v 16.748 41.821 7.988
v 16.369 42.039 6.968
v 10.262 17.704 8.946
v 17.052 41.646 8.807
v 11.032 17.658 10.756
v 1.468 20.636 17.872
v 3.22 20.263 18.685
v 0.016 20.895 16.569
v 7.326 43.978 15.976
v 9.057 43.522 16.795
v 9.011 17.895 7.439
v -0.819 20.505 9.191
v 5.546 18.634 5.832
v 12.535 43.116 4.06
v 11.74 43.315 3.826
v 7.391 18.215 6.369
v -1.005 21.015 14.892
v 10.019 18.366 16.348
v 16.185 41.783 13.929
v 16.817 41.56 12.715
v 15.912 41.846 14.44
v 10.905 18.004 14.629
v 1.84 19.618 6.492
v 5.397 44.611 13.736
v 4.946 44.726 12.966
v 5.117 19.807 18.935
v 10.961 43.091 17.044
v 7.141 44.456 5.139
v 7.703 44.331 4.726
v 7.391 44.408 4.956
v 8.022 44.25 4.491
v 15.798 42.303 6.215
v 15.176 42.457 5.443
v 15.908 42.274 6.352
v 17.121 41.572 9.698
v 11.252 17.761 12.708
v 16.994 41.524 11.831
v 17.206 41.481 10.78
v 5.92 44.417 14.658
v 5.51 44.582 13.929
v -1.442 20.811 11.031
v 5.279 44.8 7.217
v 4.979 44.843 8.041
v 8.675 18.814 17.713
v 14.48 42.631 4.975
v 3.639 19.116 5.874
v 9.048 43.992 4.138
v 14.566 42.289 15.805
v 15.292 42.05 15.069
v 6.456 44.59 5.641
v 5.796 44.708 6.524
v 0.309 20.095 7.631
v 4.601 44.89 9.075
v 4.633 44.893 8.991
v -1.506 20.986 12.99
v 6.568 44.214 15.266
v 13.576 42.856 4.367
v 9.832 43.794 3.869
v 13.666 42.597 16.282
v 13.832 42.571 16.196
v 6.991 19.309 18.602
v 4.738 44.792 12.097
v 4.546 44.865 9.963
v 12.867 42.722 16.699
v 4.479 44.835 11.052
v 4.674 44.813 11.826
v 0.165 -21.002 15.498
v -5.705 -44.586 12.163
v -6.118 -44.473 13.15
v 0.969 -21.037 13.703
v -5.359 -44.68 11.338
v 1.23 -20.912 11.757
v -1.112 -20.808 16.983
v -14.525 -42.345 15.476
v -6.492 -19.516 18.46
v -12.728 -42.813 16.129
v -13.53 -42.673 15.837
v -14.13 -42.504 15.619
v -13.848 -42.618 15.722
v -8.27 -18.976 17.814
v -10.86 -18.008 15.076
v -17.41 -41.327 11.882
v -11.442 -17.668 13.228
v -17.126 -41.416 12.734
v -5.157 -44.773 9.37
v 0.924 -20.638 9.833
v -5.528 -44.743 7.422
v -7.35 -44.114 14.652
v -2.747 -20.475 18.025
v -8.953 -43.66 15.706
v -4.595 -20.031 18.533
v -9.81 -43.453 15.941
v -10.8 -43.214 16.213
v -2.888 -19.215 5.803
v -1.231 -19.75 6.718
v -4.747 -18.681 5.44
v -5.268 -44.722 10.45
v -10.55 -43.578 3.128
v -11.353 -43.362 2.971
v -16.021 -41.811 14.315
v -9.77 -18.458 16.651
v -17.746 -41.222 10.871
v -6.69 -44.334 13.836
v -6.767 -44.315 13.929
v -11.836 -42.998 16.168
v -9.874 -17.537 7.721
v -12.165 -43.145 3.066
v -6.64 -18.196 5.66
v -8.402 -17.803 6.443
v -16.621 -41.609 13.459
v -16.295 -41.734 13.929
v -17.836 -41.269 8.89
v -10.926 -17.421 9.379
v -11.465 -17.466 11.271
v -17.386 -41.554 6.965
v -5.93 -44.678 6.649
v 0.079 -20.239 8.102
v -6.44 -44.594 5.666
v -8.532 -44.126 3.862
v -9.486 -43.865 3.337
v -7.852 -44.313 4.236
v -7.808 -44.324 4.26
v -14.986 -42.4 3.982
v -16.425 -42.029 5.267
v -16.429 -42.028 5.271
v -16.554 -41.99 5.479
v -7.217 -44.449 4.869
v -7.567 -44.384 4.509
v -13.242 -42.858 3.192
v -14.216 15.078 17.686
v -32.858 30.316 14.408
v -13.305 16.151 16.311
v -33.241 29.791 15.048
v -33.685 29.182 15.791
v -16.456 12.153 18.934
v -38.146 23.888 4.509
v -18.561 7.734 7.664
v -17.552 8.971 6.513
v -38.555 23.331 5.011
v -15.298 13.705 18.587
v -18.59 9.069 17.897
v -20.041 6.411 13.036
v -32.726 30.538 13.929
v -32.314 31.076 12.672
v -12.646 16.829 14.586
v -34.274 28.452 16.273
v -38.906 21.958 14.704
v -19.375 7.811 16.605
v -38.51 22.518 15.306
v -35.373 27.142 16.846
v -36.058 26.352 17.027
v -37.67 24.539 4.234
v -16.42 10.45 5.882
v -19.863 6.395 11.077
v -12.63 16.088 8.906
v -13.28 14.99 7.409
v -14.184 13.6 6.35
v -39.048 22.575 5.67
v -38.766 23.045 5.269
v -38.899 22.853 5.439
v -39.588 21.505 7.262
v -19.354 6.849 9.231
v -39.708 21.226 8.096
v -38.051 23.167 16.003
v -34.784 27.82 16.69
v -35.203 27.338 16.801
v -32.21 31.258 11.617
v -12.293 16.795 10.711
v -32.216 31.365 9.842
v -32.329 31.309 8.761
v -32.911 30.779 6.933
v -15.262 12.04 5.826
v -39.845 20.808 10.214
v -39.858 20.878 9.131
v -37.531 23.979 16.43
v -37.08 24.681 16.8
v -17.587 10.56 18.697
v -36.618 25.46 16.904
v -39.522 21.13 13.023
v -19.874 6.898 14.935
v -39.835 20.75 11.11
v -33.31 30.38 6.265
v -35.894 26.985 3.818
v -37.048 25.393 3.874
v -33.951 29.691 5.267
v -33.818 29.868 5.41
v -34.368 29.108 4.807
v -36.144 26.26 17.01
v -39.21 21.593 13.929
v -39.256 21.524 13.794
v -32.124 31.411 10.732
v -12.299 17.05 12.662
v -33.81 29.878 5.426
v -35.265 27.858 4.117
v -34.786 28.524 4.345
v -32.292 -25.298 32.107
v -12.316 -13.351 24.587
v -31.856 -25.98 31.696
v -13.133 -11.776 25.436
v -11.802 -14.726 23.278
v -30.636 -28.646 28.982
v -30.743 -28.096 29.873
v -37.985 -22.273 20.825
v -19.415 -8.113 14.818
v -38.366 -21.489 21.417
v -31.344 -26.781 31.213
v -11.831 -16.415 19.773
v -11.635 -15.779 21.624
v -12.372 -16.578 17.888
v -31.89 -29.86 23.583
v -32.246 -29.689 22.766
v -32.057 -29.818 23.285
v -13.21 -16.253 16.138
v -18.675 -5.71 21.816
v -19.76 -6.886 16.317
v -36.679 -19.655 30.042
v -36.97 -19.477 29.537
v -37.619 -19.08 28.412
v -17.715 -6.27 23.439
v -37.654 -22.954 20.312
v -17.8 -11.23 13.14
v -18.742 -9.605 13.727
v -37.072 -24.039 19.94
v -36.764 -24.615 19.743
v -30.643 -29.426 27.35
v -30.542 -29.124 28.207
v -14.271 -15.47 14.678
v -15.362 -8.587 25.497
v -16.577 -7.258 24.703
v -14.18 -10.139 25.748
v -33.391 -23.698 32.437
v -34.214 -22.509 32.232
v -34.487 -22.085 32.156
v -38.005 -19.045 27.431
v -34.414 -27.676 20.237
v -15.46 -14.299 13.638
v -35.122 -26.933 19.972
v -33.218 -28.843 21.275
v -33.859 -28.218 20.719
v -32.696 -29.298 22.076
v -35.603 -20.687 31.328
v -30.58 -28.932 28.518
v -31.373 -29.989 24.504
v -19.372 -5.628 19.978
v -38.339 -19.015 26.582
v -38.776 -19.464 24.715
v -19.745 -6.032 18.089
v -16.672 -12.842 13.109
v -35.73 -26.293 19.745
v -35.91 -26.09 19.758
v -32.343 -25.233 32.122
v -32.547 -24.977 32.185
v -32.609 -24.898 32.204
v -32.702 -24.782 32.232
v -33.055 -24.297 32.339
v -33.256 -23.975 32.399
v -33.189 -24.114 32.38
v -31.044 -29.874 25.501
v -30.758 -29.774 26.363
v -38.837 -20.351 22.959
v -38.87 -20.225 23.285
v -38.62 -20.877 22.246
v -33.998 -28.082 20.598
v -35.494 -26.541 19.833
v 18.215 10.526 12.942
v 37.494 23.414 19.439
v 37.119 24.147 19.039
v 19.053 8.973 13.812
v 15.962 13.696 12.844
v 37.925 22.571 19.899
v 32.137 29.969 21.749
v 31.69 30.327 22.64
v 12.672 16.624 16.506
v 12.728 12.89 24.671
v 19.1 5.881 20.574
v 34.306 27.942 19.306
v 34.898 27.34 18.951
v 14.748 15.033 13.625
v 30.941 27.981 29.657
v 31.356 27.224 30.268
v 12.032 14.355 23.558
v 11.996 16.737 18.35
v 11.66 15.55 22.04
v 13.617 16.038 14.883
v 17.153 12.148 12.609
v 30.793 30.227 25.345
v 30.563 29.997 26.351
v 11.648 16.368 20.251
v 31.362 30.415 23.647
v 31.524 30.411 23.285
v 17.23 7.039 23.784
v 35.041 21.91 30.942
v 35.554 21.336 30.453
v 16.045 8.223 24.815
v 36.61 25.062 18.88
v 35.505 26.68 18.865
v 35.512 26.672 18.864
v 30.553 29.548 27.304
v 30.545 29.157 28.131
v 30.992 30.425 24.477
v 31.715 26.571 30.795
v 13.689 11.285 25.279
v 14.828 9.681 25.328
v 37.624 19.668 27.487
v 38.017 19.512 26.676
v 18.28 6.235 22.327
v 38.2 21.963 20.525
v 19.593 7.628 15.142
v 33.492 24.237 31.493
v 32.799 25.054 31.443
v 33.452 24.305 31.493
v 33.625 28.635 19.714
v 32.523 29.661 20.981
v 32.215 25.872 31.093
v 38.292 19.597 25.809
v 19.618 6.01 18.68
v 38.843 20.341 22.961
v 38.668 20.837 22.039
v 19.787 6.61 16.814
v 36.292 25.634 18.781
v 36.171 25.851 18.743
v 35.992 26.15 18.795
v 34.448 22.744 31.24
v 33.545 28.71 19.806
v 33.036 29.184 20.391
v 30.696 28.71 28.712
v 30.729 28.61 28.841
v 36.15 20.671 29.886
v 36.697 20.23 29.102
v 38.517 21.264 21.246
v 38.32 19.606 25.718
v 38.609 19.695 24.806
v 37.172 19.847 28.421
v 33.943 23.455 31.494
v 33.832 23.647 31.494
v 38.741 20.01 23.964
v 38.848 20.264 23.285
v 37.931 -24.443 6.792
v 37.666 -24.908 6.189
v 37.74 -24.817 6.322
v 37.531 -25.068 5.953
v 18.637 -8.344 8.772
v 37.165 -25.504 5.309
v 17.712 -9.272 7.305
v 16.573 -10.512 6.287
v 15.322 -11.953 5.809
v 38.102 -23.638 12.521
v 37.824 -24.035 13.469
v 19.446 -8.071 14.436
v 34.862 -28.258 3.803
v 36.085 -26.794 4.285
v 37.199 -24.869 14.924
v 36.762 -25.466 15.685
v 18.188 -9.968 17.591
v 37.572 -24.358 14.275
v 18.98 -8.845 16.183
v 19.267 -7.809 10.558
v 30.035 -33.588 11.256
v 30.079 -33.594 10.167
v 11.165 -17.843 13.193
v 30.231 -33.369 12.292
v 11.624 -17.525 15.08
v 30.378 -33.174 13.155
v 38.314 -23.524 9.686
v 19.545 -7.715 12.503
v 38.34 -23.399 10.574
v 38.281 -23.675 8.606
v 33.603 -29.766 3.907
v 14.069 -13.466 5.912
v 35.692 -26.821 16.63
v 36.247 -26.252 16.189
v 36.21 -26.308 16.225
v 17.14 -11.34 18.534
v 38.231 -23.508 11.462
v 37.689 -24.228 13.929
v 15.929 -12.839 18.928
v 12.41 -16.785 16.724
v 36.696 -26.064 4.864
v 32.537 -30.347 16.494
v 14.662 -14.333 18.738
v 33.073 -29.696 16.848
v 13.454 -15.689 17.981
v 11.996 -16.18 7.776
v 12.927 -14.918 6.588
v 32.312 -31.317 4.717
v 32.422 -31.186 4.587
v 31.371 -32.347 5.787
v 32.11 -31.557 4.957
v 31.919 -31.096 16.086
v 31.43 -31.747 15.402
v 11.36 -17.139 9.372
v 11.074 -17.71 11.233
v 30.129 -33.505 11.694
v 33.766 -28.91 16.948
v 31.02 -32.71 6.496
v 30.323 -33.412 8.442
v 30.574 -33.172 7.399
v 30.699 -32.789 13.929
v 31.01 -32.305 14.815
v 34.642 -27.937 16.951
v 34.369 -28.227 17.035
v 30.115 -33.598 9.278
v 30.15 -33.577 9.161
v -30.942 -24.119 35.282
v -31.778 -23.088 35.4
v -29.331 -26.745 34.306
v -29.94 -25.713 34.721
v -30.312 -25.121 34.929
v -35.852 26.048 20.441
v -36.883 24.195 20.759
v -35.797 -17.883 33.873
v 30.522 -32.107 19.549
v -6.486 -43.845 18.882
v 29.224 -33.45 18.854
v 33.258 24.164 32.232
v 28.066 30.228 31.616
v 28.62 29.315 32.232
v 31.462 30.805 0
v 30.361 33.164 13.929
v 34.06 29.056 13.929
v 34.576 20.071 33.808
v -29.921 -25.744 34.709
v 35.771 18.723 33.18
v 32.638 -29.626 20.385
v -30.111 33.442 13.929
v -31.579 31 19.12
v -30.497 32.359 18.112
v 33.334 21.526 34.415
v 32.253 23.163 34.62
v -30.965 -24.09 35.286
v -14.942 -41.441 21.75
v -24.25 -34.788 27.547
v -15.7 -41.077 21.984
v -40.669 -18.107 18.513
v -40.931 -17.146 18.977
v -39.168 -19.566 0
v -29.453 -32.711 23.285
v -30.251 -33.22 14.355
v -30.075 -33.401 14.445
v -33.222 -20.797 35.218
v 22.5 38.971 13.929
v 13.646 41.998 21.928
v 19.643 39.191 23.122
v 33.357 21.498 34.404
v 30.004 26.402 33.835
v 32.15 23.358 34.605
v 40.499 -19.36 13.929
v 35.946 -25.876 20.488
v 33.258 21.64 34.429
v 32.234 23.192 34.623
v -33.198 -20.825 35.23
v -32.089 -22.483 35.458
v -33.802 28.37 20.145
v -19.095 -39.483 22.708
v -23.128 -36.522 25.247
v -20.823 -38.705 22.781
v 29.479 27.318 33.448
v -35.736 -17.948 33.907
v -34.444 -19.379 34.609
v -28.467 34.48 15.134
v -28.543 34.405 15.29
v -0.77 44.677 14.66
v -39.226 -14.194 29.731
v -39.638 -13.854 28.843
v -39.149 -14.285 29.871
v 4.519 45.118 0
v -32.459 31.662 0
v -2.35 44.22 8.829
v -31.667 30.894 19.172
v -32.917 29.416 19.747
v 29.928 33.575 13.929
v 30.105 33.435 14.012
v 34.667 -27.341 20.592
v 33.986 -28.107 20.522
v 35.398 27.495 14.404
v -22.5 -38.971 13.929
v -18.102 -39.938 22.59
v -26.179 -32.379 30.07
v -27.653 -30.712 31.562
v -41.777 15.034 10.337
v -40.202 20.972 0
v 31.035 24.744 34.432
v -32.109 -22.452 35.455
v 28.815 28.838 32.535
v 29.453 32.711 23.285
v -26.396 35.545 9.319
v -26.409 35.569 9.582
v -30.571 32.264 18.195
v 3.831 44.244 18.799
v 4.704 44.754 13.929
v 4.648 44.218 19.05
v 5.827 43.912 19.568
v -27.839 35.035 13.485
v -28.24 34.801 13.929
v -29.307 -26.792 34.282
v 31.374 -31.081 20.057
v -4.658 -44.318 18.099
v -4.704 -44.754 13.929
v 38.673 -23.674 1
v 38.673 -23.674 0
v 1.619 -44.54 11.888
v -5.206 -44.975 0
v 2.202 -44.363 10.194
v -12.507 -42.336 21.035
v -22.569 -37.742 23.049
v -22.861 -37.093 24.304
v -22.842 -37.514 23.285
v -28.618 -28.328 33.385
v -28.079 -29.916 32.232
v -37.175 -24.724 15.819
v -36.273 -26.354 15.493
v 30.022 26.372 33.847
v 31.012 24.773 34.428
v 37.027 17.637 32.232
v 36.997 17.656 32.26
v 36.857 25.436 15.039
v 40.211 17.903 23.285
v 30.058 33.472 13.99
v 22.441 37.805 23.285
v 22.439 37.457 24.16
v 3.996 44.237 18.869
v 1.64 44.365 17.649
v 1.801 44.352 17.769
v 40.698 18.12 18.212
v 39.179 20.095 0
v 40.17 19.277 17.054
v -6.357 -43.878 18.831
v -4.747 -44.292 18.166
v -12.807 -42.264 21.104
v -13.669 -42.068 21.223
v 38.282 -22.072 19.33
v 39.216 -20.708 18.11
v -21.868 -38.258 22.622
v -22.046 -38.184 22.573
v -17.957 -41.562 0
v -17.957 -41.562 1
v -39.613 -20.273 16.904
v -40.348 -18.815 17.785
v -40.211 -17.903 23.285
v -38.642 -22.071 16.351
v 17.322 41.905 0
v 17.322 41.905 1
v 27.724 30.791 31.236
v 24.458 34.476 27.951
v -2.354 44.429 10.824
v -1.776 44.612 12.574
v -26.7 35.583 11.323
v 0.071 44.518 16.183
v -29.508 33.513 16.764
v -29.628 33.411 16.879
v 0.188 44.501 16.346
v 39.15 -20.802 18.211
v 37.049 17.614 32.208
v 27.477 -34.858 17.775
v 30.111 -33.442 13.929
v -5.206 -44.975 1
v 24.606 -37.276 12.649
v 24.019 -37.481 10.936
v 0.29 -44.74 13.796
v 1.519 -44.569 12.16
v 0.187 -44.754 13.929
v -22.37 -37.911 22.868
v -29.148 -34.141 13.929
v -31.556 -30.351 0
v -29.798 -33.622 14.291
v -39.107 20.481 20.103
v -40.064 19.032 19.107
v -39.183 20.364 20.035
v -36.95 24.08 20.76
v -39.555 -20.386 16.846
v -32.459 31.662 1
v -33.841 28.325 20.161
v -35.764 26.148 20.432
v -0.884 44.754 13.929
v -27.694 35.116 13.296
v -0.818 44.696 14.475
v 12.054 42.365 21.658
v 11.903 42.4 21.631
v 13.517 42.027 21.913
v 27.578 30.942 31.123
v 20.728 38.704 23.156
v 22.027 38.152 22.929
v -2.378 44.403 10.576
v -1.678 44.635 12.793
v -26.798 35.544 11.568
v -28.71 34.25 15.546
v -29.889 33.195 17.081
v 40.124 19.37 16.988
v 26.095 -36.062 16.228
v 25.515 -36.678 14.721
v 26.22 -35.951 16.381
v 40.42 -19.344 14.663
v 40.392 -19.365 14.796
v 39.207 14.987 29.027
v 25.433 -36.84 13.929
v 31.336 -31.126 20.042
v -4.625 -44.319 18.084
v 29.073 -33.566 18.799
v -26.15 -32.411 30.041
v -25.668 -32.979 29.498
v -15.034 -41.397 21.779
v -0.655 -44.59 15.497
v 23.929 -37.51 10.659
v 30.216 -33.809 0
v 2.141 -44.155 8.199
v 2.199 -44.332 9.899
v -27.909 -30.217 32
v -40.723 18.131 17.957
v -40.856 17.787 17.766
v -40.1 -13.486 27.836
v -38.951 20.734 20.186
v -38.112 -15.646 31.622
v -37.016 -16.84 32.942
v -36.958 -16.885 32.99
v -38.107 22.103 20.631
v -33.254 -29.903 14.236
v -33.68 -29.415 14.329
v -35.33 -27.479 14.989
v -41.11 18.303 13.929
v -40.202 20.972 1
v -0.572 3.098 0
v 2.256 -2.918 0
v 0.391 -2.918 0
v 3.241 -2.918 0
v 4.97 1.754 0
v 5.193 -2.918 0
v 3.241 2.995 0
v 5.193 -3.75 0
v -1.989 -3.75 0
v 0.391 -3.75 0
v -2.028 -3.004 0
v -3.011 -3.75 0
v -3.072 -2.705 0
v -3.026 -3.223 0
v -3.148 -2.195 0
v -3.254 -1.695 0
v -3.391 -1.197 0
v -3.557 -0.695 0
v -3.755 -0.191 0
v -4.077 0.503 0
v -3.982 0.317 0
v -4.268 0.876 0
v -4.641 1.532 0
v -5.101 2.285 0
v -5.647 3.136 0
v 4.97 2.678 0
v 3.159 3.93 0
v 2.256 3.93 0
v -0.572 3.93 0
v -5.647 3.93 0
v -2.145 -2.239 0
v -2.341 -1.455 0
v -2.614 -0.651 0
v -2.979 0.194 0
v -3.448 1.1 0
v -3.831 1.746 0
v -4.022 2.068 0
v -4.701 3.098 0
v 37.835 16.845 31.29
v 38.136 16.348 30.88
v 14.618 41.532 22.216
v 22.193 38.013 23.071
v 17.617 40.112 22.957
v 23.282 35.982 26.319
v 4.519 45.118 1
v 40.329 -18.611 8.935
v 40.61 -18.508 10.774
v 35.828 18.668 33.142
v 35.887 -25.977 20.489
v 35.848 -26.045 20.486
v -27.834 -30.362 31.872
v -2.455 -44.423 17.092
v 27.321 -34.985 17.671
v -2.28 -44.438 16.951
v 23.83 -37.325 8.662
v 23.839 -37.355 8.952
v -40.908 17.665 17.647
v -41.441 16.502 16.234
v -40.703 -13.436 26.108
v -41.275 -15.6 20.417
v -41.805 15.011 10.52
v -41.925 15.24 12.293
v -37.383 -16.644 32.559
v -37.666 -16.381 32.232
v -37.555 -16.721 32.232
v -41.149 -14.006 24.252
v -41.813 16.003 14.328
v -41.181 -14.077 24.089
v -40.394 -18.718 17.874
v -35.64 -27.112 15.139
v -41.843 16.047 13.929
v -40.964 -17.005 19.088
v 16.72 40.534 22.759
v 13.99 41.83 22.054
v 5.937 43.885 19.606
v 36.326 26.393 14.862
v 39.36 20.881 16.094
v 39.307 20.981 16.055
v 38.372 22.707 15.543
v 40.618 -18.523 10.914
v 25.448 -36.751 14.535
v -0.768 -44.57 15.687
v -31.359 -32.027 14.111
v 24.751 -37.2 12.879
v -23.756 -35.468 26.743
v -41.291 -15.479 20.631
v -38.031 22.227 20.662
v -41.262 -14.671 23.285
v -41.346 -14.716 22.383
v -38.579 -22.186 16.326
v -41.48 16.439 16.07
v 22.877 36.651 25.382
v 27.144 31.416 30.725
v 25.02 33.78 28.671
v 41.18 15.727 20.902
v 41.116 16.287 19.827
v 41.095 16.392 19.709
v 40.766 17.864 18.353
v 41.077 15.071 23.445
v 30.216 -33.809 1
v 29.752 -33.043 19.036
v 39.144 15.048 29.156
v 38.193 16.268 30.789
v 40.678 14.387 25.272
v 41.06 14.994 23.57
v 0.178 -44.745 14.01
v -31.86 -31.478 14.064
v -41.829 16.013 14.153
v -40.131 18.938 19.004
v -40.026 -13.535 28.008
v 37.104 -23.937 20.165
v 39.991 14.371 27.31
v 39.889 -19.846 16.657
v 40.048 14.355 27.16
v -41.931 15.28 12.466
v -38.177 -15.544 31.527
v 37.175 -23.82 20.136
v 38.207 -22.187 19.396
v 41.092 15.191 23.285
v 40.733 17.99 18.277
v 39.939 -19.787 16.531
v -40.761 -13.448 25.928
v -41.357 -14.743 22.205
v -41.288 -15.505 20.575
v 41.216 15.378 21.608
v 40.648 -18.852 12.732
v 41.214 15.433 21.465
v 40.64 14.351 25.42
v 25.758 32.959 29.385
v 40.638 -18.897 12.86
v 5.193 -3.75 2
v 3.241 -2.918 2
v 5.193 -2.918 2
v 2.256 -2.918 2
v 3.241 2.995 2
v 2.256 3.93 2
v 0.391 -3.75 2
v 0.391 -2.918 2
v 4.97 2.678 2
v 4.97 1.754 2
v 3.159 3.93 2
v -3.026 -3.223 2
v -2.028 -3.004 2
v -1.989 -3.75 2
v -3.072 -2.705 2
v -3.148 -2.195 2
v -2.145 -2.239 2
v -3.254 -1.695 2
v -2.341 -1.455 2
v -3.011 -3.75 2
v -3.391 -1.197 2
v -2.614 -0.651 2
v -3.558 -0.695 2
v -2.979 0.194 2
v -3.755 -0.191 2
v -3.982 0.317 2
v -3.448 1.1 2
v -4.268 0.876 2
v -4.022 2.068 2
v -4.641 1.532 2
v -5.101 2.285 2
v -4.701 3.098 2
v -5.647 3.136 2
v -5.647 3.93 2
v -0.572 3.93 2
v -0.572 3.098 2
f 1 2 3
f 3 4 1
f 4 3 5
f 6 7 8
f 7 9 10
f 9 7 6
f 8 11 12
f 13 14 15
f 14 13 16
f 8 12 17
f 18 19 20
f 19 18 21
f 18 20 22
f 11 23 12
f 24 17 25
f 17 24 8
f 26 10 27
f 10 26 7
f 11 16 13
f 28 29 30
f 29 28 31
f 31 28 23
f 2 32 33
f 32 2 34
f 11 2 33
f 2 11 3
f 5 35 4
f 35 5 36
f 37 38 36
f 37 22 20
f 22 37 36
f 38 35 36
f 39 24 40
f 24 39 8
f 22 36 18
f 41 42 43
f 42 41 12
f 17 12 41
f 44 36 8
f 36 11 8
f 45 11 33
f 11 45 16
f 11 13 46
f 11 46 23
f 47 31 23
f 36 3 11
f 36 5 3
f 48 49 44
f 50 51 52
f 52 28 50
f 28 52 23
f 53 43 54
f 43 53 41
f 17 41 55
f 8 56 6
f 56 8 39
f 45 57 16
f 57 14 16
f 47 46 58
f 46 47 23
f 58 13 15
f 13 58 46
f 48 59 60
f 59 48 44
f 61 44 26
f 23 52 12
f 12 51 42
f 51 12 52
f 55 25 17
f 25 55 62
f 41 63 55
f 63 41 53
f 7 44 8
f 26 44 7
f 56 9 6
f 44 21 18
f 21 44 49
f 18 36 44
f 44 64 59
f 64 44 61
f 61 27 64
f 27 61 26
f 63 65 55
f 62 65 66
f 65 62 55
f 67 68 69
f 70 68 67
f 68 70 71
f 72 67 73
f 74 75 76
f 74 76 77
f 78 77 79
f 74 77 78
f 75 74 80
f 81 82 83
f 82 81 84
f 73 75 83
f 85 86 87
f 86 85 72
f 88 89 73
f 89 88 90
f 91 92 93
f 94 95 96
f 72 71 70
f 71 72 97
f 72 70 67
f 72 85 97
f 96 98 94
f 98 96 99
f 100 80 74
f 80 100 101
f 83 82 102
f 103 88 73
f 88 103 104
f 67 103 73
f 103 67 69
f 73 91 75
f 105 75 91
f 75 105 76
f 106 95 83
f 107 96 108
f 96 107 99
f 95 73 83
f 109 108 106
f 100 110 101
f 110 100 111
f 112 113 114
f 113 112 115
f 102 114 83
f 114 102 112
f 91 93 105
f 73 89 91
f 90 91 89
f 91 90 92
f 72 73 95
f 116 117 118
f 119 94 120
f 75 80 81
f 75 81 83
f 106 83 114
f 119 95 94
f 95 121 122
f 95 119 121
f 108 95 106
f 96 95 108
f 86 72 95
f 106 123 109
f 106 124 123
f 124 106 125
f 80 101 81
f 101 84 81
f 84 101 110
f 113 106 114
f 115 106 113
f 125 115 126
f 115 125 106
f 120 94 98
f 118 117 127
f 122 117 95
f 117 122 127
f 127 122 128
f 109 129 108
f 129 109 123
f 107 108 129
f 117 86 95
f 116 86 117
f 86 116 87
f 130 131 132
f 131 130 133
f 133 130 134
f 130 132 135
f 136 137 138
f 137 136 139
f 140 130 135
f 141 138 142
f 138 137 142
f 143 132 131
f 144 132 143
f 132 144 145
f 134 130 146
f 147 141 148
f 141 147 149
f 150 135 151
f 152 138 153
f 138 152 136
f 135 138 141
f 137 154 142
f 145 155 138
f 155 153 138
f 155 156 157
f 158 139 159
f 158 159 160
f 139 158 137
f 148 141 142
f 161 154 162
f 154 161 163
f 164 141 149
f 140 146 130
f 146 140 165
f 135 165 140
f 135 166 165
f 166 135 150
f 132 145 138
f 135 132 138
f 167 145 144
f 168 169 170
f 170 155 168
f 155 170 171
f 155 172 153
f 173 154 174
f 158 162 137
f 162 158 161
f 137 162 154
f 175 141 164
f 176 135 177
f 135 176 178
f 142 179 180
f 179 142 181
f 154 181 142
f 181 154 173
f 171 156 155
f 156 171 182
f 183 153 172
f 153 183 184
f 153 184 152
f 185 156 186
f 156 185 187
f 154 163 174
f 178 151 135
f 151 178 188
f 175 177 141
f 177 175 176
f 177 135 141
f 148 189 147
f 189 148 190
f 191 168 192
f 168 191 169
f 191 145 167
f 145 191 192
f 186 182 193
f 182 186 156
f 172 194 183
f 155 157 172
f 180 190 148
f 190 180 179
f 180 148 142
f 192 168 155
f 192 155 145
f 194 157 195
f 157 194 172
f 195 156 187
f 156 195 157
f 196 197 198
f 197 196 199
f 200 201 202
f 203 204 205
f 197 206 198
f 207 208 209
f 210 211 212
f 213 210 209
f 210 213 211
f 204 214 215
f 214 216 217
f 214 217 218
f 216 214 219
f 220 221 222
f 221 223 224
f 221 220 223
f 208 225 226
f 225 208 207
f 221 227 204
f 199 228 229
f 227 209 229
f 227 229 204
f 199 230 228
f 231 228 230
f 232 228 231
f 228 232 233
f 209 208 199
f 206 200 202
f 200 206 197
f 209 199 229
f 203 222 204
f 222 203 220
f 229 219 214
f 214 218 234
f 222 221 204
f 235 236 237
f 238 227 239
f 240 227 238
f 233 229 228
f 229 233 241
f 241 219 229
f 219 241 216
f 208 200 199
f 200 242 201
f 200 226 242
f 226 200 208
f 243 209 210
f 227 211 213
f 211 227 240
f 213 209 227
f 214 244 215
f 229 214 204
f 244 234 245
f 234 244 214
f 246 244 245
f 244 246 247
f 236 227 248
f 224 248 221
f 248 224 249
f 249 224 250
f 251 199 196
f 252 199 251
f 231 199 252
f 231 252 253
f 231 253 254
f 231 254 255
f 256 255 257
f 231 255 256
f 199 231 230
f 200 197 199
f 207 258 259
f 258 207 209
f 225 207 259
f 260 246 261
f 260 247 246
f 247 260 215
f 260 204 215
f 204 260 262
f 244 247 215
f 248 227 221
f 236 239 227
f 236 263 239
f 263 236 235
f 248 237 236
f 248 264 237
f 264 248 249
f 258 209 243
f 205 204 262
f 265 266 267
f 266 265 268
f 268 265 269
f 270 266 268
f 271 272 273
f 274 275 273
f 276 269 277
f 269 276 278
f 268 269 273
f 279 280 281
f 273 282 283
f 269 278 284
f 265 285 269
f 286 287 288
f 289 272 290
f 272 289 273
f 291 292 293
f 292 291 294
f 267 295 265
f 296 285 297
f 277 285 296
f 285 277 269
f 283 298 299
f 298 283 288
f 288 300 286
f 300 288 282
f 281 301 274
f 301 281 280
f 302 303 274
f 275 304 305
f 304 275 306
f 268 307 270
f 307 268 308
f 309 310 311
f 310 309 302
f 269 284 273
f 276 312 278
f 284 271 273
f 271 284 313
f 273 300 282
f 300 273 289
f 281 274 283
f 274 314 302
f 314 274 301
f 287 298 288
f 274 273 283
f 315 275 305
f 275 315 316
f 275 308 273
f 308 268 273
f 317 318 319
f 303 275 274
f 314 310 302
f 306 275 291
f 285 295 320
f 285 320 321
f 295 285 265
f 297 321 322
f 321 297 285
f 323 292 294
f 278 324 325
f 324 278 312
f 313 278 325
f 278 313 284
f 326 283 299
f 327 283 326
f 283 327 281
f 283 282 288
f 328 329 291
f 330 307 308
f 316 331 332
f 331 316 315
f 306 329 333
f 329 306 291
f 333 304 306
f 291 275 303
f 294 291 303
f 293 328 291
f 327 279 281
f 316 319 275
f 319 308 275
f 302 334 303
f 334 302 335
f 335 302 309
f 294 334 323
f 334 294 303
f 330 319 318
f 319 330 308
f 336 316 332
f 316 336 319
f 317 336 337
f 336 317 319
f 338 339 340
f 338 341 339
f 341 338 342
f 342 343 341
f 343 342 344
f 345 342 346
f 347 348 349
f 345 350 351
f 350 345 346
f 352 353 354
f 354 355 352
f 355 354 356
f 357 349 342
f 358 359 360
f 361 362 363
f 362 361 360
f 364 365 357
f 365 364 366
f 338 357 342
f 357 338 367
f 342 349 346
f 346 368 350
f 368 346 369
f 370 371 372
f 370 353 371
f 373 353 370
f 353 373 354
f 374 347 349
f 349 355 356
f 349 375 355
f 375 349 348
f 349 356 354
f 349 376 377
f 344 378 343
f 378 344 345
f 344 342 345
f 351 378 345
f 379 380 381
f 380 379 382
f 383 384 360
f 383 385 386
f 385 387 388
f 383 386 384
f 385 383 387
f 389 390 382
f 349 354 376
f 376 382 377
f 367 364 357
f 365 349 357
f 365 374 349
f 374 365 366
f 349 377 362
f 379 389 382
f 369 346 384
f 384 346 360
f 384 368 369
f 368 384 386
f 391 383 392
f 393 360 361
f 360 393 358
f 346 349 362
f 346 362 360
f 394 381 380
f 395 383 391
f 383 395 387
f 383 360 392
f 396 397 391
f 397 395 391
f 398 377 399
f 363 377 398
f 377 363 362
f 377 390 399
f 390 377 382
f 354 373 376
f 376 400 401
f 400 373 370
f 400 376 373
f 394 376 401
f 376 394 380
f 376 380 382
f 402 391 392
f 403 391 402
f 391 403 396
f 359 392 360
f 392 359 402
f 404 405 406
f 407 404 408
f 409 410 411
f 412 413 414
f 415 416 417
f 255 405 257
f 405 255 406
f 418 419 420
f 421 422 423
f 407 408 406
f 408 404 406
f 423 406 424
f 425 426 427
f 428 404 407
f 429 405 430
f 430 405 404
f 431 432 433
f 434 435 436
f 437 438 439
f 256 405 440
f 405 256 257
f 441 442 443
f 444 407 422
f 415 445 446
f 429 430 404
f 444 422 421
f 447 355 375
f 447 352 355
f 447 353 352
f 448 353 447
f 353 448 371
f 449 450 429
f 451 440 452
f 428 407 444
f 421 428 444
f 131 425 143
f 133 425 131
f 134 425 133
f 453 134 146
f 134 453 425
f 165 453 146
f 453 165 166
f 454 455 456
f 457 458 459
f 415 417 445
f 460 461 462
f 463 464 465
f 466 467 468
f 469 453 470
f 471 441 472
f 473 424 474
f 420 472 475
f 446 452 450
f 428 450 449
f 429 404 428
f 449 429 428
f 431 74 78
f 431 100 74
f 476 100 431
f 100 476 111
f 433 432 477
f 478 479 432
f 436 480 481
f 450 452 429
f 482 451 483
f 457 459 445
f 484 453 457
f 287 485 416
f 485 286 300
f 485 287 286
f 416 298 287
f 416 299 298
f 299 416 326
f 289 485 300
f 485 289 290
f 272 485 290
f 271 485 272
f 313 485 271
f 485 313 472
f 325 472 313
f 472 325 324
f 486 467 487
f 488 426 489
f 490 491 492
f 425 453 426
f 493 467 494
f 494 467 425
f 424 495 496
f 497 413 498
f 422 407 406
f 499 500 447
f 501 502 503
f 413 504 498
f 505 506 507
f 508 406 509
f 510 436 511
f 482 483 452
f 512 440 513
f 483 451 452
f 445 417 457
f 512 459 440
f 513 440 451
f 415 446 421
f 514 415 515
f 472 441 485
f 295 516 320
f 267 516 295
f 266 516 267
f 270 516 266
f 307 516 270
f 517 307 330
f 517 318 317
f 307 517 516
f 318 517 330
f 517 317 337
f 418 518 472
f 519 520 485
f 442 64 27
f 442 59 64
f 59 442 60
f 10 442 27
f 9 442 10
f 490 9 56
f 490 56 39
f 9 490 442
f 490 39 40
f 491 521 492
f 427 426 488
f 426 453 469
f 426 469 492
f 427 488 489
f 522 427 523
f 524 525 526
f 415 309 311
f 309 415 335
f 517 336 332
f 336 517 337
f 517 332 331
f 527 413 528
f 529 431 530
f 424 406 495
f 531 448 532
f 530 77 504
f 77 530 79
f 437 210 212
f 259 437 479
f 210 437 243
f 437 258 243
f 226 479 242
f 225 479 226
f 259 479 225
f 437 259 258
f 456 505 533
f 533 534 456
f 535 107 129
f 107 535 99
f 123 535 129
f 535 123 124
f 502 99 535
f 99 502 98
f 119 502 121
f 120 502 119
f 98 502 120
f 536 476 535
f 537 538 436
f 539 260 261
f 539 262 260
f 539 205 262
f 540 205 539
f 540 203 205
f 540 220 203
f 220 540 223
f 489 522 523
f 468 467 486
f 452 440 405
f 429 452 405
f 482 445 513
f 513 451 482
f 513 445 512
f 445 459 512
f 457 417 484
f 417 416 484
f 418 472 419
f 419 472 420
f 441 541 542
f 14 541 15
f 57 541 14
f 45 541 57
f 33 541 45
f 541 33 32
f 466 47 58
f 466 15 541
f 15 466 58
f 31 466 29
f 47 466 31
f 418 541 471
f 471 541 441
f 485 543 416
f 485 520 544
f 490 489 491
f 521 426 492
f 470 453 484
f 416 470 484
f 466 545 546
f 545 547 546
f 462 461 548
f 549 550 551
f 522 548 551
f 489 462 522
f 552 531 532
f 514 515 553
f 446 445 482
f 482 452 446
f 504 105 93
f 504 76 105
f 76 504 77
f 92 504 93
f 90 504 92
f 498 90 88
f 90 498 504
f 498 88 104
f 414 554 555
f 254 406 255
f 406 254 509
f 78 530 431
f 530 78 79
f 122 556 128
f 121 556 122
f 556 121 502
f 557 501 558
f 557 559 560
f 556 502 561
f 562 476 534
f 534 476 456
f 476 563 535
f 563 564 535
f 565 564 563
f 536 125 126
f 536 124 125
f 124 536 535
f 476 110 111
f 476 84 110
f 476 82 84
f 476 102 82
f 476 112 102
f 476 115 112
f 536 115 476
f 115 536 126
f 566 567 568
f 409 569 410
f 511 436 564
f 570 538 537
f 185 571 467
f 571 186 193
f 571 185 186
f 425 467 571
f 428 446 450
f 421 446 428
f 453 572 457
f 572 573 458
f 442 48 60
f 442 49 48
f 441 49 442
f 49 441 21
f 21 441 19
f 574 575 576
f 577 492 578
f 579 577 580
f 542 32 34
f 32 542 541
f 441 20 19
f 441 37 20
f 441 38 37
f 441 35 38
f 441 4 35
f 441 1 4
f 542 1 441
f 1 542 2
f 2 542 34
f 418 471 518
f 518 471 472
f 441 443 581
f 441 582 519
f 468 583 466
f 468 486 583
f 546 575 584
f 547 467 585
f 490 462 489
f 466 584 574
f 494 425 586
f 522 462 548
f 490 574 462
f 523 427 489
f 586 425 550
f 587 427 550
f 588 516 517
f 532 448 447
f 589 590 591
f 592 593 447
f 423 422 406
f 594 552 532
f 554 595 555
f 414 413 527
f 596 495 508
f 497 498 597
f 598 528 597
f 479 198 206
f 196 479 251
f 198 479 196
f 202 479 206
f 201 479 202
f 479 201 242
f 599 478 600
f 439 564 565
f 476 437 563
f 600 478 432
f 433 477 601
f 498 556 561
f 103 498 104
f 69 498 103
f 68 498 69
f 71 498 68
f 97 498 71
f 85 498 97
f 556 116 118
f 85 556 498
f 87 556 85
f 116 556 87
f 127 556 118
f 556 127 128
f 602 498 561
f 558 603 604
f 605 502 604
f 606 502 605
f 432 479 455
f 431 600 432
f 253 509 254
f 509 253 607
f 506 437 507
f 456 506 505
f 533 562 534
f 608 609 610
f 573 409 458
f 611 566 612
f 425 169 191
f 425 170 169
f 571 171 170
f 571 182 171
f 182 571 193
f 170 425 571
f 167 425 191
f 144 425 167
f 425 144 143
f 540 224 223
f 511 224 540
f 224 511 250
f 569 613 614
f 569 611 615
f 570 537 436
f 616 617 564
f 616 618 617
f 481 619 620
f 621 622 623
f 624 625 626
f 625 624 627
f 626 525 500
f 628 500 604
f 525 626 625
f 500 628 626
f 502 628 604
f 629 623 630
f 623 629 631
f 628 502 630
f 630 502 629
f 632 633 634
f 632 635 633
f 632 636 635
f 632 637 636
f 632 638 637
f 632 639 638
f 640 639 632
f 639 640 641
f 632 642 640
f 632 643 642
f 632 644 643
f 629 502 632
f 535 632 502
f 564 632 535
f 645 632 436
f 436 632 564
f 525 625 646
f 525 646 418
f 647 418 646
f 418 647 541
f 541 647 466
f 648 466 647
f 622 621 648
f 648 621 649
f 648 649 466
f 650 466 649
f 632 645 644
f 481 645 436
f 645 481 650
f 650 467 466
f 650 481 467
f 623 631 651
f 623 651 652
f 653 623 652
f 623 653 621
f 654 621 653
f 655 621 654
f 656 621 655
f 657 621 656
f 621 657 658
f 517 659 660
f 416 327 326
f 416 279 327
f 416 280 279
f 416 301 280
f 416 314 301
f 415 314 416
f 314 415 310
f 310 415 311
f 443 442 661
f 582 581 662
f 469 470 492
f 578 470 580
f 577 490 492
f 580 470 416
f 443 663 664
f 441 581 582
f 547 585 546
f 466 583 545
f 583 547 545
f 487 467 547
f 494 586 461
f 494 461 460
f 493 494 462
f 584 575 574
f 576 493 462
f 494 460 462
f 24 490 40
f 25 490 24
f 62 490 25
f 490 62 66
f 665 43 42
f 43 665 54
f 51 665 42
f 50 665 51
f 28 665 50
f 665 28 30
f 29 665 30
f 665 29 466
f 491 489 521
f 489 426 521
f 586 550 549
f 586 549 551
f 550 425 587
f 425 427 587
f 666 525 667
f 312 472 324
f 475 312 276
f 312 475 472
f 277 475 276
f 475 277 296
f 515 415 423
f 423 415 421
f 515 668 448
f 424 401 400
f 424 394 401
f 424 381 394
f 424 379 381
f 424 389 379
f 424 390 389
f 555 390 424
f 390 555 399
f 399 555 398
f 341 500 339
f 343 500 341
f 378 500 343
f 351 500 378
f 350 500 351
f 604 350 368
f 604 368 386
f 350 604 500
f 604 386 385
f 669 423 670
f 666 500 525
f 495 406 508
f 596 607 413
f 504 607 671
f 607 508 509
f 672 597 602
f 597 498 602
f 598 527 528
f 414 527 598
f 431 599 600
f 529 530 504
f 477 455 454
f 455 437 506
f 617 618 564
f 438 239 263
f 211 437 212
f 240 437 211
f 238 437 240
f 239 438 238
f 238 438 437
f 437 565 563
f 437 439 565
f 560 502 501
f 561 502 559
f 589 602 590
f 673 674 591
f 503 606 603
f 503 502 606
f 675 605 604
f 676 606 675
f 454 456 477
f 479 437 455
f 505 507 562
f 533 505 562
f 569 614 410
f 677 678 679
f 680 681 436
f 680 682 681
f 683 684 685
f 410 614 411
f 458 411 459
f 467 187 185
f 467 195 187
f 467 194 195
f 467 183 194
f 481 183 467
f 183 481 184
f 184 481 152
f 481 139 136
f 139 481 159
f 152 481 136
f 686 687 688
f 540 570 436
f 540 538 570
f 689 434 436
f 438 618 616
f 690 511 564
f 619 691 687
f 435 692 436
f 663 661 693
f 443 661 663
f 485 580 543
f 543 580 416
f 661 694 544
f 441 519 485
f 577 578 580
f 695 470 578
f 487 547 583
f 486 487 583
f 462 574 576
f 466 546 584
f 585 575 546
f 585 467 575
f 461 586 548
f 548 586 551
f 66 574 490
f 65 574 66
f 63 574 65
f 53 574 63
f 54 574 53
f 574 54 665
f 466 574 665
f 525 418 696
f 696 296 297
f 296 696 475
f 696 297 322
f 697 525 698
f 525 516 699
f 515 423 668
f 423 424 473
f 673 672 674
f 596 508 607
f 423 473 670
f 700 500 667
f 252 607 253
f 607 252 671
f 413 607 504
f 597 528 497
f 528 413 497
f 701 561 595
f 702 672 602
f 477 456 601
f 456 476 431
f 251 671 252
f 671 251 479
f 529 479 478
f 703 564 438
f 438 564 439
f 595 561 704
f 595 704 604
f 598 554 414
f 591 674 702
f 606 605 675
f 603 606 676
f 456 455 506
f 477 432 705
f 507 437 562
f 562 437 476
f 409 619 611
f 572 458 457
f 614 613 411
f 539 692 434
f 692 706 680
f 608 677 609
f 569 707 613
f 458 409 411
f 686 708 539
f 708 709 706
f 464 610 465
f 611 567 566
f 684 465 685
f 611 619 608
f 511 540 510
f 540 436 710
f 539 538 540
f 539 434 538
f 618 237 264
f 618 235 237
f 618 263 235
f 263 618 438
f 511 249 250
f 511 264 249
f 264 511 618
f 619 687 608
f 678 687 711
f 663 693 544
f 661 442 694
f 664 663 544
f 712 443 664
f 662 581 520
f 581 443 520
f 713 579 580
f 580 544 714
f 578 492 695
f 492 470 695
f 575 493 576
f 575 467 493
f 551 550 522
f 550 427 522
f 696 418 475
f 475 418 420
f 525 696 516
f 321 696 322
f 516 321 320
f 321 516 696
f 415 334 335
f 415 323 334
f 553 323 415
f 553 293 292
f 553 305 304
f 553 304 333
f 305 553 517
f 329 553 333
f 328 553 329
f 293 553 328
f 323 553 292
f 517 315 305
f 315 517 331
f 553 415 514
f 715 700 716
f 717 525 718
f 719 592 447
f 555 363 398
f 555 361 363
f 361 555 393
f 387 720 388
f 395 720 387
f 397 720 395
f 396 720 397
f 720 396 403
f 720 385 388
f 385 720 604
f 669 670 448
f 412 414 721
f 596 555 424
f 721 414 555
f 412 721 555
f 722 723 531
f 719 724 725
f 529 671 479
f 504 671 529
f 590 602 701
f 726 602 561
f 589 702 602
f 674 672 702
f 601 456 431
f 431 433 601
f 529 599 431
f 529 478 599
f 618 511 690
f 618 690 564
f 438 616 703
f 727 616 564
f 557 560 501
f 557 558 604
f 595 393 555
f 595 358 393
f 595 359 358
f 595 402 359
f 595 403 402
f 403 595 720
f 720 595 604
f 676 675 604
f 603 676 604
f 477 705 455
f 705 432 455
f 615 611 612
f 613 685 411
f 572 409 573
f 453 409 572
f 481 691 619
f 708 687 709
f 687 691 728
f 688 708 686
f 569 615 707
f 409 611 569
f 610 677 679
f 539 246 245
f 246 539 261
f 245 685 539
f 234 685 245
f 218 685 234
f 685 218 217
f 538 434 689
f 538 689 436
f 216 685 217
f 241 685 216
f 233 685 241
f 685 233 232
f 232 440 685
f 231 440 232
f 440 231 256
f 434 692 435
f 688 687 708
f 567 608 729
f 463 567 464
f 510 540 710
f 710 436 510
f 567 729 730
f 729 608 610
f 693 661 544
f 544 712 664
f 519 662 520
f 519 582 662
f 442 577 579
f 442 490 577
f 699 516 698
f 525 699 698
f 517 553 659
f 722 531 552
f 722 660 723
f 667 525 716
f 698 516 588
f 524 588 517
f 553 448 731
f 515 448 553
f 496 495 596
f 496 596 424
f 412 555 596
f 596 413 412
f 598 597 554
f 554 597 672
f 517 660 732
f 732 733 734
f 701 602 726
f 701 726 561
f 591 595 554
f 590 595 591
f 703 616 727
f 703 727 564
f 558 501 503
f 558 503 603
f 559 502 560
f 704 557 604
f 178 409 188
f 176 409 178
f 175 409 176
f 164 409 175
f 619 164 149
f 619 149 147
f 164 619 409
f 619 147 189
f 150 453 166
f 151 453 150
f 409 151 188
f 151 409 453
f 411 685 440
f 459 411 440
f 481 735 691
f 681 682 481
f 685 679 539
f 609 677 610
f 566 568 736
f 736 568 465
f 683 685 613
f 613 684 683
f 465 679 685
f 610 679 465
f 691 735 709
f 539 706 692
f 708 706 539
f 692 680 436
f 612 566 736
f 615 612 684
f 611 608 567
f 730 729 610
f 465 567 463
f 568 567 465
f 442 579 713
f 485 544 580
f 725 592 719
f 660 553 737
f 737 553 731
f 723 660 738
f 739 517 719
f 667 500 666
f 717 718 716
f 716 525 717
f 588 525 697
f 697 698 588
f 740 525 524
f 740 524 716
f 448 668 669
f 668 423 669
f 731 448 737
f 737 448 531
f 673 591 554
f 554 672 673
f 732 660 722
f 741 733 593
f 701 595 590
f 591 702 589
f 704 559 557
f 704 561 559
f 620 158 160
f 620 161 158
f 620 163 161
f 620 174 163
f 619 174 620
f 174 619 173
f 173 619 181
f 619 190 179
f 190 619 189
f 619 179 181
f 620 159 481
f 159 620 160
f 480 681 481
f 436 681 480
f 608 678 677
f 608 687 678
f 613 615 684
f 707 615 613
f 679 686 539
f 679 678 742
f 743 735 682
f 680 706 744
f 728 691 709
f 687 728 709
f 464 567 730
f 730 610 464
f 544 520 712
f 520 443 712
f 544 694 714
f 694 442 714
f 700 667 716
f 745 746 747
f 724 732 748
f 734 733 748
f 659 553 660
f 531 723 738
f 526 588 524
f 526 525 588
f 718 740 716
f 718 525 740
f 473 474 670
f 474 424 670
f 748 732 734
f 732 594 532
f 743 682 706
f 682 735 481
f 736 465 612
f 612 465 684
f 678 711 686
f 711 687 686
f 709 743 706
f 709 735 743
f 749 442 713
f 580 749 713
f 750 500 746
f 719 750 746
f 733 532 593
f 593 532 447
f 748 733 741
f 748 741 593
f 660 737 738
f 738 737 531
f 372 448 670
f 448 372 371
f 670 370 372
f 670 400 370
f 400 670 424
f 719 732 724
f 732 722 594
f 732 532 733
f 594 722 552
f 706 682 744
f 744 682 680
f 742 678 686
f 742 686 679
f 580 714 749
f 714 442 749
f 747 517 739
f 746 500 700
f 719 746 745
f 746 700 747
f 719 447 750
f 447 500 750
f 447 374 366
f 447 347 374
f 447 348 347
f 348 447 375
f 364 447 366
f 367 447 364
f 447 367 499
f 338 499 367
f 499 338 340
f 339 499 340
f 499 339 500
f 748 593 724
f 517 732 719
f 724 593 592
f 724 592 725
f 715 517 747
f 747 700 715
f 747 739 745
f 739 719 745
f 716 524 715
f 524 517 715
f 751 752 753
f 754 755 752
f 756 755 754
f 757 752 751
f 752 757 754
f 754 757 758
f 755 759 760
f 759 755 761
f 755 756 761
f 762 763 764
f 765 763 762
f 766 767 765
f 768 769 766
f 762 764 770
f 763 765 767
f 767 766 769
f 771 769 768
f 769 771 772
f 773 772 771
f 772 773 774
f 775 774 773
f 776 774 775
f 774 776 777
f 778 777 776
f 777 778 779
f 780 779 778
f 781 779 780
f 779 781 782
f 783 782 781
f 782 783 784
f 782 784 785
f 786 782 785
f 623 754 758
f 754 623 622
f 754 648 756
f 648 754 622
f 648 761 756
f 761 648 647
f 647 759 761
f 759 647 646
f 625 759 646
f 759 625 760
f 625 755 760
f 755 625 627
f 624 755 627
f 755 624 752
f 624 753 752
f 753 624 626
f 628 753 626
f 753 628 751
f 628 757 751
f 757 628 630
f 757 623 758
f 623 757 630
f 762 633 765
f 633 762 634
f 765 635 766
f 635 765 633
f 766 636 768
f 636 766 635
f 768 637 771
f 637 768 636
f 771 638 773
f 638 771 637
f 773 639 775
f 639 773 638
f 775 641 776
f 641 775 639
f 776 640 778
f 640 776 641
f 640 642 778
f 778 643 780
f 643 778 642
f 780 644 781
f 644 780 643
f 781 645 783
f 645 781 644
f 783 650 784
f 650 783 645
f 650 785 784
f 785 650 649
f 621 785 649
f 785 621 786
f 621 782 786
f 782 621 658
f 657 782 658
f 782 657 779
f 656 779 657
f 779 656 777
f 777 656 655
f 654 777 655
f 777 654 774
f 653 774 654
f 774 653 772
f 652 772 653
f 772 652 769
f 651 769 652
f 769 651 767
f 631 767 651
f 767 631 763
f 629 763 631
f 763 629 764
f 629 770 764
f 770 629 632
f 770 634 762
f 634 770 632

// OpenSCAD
difference() {
	difference() {
		difference() {
			hull() {
				union() {
					union() {
						rotate(a = 75.9114358965, v = [0, 0, 1]) {
							translate(v = [0, -6.6000000000, 0]) {
								cube(size = [44.8608917595, 13.2000000000, 1]);
							}
						}
						rotate(a = -104.9847968406, v = [0, 0, 1]) {
							translate(v = [0, -6.6000000000, 0]) {
								cube(size = [44.7913220073, 13.2000000000, 1]);
							}
						}
						rotate(a = 144.0809609006, v = [0, 0, 1]) {
							translate(v = [0, -6.6000000000, 0]) {
								cube(size = [44.8608912516, 13.2000000000, 1]);
							}
						}
						rotate(a = -144.7853456242, v = [0, 0, 1]) {
							translate(v = [0, -6.6000000000, 0]) {
								cube(size = [43.2827529095, 13.2000000000, 1]);
							}
						}
						rotate(a = 35.7745189155, v = [0, 0, 1]) {
							translate(v = [0, -6.6000000000, 0]) {
								cube(size = [43.5340620878, 13.2000000000, 1]);
							}
						}
						rotate(a = -39.8428638743, v = [0, 0, 1]) {
							translate(v = [0, -6.6000000000, 0]) {
								cube(size = [44.8608913754, 13.2000000000, 1]);
							}
						}
					}
					translate(v = [0, 0, 13.9286802650]) {
						intersection() {
							hull() {
								rotate(a = 94.5062267705, v = [-0.9669223886, 0.2426690176, 0.0000007243]) {
									cylinder(h = 45, r = 9.6000000000);
								}
								rotate(a = 95.5200522763, v = [0.9615147772, -0.2573636060, -0.0000007042]) {
									cylinder(h = 45, r = 9.6000000000);
								}
								rotate(a = 94.5063173094, v = [-0.5848280876, -0.8073431849, 0.0000013922]) {
									cylinder(h = 45, r = 9.6000000000);
								}
								rotate(a = 74.1205138885, v = [0.5546363344, -0.7858202356, 0.0000002312]) {
									cylinder(h = 45, r = 9.6000000000);
								}
								rotate(a = 75.3351503543, v = [-0.5655525988, 0.7848936233, -0.0000002193]) {
									cylinder(h = 45, r = 9.6000000000);
								}
								rotate(a = 94.5062952300, v = [0.6387036576, 0.7654309951, -0.0000014041]) {
									cylinder(h = 45, r = 9.6000000000);
								}
							}
							sphere(r = 45);
						}
					}
				}
			}
			translate(v = [0, 0, 13.9286802650]) {
				rotate(a = 94.5062267705, v = [-0.9669223886, 0.2426690176, 0.0000007243]) {
					translate(v = [0, 0, 20]) {
						cylinder(h = 45, r = 6.6000000000);
					}
				}
				rotate(a = 95.5200522763, v = [0.9615147772, -0.2573636060, -0.0000007042]) {
					translate(v = [0, 0, 20]) {
						cylinder(h = 45, r = 6.6000000000);
					}
				}
				rotate(a = 94.5063173094, v = [-0.5848280876, -0.8073431849, 0.0000013922]) {
					translate(v = [0, 0, 20]) {
						cylinder(h = 45, r = 6.6000000000);
					}
				}
				rotate(a = 74.1205138885, v = [0.5546363344, -0.7858202356, 0.0000002312]) {
					translate(v = [0, 0, 20]) {
						cylinder(h = 45, r = 6.6000000000);
					}
				}
				rotate(a = 75.3351503543, v = [-0.5655525988, 0.7848936233, -0.0000002193]) {
					translate(v = [0, 0, 20]) {
						cylinder(h = 45, r = 6.6000000000);
					}
				}
				rotate(a = 94.5062952300, v = [0.6387036576, 0.7654309951, -0.0000014041]) {
					translate(v = [0, 0, 20]) {
						cylinder(h = 45, r = 6.6000000000);
					}
				}
			}
		}
		translate(v = [-100, -100, -100]) {
			cube(size = [200, 200, 100]);
		}
	}
	translate(v = [0, 0, 2]) {
		rotate(a = 180, v = [0, 1, 0]) {
			linear_extrude(height = 3) {
				text(halign = "center", size = 8, text = "17", valign = "center");
			}
		}
	}
}
